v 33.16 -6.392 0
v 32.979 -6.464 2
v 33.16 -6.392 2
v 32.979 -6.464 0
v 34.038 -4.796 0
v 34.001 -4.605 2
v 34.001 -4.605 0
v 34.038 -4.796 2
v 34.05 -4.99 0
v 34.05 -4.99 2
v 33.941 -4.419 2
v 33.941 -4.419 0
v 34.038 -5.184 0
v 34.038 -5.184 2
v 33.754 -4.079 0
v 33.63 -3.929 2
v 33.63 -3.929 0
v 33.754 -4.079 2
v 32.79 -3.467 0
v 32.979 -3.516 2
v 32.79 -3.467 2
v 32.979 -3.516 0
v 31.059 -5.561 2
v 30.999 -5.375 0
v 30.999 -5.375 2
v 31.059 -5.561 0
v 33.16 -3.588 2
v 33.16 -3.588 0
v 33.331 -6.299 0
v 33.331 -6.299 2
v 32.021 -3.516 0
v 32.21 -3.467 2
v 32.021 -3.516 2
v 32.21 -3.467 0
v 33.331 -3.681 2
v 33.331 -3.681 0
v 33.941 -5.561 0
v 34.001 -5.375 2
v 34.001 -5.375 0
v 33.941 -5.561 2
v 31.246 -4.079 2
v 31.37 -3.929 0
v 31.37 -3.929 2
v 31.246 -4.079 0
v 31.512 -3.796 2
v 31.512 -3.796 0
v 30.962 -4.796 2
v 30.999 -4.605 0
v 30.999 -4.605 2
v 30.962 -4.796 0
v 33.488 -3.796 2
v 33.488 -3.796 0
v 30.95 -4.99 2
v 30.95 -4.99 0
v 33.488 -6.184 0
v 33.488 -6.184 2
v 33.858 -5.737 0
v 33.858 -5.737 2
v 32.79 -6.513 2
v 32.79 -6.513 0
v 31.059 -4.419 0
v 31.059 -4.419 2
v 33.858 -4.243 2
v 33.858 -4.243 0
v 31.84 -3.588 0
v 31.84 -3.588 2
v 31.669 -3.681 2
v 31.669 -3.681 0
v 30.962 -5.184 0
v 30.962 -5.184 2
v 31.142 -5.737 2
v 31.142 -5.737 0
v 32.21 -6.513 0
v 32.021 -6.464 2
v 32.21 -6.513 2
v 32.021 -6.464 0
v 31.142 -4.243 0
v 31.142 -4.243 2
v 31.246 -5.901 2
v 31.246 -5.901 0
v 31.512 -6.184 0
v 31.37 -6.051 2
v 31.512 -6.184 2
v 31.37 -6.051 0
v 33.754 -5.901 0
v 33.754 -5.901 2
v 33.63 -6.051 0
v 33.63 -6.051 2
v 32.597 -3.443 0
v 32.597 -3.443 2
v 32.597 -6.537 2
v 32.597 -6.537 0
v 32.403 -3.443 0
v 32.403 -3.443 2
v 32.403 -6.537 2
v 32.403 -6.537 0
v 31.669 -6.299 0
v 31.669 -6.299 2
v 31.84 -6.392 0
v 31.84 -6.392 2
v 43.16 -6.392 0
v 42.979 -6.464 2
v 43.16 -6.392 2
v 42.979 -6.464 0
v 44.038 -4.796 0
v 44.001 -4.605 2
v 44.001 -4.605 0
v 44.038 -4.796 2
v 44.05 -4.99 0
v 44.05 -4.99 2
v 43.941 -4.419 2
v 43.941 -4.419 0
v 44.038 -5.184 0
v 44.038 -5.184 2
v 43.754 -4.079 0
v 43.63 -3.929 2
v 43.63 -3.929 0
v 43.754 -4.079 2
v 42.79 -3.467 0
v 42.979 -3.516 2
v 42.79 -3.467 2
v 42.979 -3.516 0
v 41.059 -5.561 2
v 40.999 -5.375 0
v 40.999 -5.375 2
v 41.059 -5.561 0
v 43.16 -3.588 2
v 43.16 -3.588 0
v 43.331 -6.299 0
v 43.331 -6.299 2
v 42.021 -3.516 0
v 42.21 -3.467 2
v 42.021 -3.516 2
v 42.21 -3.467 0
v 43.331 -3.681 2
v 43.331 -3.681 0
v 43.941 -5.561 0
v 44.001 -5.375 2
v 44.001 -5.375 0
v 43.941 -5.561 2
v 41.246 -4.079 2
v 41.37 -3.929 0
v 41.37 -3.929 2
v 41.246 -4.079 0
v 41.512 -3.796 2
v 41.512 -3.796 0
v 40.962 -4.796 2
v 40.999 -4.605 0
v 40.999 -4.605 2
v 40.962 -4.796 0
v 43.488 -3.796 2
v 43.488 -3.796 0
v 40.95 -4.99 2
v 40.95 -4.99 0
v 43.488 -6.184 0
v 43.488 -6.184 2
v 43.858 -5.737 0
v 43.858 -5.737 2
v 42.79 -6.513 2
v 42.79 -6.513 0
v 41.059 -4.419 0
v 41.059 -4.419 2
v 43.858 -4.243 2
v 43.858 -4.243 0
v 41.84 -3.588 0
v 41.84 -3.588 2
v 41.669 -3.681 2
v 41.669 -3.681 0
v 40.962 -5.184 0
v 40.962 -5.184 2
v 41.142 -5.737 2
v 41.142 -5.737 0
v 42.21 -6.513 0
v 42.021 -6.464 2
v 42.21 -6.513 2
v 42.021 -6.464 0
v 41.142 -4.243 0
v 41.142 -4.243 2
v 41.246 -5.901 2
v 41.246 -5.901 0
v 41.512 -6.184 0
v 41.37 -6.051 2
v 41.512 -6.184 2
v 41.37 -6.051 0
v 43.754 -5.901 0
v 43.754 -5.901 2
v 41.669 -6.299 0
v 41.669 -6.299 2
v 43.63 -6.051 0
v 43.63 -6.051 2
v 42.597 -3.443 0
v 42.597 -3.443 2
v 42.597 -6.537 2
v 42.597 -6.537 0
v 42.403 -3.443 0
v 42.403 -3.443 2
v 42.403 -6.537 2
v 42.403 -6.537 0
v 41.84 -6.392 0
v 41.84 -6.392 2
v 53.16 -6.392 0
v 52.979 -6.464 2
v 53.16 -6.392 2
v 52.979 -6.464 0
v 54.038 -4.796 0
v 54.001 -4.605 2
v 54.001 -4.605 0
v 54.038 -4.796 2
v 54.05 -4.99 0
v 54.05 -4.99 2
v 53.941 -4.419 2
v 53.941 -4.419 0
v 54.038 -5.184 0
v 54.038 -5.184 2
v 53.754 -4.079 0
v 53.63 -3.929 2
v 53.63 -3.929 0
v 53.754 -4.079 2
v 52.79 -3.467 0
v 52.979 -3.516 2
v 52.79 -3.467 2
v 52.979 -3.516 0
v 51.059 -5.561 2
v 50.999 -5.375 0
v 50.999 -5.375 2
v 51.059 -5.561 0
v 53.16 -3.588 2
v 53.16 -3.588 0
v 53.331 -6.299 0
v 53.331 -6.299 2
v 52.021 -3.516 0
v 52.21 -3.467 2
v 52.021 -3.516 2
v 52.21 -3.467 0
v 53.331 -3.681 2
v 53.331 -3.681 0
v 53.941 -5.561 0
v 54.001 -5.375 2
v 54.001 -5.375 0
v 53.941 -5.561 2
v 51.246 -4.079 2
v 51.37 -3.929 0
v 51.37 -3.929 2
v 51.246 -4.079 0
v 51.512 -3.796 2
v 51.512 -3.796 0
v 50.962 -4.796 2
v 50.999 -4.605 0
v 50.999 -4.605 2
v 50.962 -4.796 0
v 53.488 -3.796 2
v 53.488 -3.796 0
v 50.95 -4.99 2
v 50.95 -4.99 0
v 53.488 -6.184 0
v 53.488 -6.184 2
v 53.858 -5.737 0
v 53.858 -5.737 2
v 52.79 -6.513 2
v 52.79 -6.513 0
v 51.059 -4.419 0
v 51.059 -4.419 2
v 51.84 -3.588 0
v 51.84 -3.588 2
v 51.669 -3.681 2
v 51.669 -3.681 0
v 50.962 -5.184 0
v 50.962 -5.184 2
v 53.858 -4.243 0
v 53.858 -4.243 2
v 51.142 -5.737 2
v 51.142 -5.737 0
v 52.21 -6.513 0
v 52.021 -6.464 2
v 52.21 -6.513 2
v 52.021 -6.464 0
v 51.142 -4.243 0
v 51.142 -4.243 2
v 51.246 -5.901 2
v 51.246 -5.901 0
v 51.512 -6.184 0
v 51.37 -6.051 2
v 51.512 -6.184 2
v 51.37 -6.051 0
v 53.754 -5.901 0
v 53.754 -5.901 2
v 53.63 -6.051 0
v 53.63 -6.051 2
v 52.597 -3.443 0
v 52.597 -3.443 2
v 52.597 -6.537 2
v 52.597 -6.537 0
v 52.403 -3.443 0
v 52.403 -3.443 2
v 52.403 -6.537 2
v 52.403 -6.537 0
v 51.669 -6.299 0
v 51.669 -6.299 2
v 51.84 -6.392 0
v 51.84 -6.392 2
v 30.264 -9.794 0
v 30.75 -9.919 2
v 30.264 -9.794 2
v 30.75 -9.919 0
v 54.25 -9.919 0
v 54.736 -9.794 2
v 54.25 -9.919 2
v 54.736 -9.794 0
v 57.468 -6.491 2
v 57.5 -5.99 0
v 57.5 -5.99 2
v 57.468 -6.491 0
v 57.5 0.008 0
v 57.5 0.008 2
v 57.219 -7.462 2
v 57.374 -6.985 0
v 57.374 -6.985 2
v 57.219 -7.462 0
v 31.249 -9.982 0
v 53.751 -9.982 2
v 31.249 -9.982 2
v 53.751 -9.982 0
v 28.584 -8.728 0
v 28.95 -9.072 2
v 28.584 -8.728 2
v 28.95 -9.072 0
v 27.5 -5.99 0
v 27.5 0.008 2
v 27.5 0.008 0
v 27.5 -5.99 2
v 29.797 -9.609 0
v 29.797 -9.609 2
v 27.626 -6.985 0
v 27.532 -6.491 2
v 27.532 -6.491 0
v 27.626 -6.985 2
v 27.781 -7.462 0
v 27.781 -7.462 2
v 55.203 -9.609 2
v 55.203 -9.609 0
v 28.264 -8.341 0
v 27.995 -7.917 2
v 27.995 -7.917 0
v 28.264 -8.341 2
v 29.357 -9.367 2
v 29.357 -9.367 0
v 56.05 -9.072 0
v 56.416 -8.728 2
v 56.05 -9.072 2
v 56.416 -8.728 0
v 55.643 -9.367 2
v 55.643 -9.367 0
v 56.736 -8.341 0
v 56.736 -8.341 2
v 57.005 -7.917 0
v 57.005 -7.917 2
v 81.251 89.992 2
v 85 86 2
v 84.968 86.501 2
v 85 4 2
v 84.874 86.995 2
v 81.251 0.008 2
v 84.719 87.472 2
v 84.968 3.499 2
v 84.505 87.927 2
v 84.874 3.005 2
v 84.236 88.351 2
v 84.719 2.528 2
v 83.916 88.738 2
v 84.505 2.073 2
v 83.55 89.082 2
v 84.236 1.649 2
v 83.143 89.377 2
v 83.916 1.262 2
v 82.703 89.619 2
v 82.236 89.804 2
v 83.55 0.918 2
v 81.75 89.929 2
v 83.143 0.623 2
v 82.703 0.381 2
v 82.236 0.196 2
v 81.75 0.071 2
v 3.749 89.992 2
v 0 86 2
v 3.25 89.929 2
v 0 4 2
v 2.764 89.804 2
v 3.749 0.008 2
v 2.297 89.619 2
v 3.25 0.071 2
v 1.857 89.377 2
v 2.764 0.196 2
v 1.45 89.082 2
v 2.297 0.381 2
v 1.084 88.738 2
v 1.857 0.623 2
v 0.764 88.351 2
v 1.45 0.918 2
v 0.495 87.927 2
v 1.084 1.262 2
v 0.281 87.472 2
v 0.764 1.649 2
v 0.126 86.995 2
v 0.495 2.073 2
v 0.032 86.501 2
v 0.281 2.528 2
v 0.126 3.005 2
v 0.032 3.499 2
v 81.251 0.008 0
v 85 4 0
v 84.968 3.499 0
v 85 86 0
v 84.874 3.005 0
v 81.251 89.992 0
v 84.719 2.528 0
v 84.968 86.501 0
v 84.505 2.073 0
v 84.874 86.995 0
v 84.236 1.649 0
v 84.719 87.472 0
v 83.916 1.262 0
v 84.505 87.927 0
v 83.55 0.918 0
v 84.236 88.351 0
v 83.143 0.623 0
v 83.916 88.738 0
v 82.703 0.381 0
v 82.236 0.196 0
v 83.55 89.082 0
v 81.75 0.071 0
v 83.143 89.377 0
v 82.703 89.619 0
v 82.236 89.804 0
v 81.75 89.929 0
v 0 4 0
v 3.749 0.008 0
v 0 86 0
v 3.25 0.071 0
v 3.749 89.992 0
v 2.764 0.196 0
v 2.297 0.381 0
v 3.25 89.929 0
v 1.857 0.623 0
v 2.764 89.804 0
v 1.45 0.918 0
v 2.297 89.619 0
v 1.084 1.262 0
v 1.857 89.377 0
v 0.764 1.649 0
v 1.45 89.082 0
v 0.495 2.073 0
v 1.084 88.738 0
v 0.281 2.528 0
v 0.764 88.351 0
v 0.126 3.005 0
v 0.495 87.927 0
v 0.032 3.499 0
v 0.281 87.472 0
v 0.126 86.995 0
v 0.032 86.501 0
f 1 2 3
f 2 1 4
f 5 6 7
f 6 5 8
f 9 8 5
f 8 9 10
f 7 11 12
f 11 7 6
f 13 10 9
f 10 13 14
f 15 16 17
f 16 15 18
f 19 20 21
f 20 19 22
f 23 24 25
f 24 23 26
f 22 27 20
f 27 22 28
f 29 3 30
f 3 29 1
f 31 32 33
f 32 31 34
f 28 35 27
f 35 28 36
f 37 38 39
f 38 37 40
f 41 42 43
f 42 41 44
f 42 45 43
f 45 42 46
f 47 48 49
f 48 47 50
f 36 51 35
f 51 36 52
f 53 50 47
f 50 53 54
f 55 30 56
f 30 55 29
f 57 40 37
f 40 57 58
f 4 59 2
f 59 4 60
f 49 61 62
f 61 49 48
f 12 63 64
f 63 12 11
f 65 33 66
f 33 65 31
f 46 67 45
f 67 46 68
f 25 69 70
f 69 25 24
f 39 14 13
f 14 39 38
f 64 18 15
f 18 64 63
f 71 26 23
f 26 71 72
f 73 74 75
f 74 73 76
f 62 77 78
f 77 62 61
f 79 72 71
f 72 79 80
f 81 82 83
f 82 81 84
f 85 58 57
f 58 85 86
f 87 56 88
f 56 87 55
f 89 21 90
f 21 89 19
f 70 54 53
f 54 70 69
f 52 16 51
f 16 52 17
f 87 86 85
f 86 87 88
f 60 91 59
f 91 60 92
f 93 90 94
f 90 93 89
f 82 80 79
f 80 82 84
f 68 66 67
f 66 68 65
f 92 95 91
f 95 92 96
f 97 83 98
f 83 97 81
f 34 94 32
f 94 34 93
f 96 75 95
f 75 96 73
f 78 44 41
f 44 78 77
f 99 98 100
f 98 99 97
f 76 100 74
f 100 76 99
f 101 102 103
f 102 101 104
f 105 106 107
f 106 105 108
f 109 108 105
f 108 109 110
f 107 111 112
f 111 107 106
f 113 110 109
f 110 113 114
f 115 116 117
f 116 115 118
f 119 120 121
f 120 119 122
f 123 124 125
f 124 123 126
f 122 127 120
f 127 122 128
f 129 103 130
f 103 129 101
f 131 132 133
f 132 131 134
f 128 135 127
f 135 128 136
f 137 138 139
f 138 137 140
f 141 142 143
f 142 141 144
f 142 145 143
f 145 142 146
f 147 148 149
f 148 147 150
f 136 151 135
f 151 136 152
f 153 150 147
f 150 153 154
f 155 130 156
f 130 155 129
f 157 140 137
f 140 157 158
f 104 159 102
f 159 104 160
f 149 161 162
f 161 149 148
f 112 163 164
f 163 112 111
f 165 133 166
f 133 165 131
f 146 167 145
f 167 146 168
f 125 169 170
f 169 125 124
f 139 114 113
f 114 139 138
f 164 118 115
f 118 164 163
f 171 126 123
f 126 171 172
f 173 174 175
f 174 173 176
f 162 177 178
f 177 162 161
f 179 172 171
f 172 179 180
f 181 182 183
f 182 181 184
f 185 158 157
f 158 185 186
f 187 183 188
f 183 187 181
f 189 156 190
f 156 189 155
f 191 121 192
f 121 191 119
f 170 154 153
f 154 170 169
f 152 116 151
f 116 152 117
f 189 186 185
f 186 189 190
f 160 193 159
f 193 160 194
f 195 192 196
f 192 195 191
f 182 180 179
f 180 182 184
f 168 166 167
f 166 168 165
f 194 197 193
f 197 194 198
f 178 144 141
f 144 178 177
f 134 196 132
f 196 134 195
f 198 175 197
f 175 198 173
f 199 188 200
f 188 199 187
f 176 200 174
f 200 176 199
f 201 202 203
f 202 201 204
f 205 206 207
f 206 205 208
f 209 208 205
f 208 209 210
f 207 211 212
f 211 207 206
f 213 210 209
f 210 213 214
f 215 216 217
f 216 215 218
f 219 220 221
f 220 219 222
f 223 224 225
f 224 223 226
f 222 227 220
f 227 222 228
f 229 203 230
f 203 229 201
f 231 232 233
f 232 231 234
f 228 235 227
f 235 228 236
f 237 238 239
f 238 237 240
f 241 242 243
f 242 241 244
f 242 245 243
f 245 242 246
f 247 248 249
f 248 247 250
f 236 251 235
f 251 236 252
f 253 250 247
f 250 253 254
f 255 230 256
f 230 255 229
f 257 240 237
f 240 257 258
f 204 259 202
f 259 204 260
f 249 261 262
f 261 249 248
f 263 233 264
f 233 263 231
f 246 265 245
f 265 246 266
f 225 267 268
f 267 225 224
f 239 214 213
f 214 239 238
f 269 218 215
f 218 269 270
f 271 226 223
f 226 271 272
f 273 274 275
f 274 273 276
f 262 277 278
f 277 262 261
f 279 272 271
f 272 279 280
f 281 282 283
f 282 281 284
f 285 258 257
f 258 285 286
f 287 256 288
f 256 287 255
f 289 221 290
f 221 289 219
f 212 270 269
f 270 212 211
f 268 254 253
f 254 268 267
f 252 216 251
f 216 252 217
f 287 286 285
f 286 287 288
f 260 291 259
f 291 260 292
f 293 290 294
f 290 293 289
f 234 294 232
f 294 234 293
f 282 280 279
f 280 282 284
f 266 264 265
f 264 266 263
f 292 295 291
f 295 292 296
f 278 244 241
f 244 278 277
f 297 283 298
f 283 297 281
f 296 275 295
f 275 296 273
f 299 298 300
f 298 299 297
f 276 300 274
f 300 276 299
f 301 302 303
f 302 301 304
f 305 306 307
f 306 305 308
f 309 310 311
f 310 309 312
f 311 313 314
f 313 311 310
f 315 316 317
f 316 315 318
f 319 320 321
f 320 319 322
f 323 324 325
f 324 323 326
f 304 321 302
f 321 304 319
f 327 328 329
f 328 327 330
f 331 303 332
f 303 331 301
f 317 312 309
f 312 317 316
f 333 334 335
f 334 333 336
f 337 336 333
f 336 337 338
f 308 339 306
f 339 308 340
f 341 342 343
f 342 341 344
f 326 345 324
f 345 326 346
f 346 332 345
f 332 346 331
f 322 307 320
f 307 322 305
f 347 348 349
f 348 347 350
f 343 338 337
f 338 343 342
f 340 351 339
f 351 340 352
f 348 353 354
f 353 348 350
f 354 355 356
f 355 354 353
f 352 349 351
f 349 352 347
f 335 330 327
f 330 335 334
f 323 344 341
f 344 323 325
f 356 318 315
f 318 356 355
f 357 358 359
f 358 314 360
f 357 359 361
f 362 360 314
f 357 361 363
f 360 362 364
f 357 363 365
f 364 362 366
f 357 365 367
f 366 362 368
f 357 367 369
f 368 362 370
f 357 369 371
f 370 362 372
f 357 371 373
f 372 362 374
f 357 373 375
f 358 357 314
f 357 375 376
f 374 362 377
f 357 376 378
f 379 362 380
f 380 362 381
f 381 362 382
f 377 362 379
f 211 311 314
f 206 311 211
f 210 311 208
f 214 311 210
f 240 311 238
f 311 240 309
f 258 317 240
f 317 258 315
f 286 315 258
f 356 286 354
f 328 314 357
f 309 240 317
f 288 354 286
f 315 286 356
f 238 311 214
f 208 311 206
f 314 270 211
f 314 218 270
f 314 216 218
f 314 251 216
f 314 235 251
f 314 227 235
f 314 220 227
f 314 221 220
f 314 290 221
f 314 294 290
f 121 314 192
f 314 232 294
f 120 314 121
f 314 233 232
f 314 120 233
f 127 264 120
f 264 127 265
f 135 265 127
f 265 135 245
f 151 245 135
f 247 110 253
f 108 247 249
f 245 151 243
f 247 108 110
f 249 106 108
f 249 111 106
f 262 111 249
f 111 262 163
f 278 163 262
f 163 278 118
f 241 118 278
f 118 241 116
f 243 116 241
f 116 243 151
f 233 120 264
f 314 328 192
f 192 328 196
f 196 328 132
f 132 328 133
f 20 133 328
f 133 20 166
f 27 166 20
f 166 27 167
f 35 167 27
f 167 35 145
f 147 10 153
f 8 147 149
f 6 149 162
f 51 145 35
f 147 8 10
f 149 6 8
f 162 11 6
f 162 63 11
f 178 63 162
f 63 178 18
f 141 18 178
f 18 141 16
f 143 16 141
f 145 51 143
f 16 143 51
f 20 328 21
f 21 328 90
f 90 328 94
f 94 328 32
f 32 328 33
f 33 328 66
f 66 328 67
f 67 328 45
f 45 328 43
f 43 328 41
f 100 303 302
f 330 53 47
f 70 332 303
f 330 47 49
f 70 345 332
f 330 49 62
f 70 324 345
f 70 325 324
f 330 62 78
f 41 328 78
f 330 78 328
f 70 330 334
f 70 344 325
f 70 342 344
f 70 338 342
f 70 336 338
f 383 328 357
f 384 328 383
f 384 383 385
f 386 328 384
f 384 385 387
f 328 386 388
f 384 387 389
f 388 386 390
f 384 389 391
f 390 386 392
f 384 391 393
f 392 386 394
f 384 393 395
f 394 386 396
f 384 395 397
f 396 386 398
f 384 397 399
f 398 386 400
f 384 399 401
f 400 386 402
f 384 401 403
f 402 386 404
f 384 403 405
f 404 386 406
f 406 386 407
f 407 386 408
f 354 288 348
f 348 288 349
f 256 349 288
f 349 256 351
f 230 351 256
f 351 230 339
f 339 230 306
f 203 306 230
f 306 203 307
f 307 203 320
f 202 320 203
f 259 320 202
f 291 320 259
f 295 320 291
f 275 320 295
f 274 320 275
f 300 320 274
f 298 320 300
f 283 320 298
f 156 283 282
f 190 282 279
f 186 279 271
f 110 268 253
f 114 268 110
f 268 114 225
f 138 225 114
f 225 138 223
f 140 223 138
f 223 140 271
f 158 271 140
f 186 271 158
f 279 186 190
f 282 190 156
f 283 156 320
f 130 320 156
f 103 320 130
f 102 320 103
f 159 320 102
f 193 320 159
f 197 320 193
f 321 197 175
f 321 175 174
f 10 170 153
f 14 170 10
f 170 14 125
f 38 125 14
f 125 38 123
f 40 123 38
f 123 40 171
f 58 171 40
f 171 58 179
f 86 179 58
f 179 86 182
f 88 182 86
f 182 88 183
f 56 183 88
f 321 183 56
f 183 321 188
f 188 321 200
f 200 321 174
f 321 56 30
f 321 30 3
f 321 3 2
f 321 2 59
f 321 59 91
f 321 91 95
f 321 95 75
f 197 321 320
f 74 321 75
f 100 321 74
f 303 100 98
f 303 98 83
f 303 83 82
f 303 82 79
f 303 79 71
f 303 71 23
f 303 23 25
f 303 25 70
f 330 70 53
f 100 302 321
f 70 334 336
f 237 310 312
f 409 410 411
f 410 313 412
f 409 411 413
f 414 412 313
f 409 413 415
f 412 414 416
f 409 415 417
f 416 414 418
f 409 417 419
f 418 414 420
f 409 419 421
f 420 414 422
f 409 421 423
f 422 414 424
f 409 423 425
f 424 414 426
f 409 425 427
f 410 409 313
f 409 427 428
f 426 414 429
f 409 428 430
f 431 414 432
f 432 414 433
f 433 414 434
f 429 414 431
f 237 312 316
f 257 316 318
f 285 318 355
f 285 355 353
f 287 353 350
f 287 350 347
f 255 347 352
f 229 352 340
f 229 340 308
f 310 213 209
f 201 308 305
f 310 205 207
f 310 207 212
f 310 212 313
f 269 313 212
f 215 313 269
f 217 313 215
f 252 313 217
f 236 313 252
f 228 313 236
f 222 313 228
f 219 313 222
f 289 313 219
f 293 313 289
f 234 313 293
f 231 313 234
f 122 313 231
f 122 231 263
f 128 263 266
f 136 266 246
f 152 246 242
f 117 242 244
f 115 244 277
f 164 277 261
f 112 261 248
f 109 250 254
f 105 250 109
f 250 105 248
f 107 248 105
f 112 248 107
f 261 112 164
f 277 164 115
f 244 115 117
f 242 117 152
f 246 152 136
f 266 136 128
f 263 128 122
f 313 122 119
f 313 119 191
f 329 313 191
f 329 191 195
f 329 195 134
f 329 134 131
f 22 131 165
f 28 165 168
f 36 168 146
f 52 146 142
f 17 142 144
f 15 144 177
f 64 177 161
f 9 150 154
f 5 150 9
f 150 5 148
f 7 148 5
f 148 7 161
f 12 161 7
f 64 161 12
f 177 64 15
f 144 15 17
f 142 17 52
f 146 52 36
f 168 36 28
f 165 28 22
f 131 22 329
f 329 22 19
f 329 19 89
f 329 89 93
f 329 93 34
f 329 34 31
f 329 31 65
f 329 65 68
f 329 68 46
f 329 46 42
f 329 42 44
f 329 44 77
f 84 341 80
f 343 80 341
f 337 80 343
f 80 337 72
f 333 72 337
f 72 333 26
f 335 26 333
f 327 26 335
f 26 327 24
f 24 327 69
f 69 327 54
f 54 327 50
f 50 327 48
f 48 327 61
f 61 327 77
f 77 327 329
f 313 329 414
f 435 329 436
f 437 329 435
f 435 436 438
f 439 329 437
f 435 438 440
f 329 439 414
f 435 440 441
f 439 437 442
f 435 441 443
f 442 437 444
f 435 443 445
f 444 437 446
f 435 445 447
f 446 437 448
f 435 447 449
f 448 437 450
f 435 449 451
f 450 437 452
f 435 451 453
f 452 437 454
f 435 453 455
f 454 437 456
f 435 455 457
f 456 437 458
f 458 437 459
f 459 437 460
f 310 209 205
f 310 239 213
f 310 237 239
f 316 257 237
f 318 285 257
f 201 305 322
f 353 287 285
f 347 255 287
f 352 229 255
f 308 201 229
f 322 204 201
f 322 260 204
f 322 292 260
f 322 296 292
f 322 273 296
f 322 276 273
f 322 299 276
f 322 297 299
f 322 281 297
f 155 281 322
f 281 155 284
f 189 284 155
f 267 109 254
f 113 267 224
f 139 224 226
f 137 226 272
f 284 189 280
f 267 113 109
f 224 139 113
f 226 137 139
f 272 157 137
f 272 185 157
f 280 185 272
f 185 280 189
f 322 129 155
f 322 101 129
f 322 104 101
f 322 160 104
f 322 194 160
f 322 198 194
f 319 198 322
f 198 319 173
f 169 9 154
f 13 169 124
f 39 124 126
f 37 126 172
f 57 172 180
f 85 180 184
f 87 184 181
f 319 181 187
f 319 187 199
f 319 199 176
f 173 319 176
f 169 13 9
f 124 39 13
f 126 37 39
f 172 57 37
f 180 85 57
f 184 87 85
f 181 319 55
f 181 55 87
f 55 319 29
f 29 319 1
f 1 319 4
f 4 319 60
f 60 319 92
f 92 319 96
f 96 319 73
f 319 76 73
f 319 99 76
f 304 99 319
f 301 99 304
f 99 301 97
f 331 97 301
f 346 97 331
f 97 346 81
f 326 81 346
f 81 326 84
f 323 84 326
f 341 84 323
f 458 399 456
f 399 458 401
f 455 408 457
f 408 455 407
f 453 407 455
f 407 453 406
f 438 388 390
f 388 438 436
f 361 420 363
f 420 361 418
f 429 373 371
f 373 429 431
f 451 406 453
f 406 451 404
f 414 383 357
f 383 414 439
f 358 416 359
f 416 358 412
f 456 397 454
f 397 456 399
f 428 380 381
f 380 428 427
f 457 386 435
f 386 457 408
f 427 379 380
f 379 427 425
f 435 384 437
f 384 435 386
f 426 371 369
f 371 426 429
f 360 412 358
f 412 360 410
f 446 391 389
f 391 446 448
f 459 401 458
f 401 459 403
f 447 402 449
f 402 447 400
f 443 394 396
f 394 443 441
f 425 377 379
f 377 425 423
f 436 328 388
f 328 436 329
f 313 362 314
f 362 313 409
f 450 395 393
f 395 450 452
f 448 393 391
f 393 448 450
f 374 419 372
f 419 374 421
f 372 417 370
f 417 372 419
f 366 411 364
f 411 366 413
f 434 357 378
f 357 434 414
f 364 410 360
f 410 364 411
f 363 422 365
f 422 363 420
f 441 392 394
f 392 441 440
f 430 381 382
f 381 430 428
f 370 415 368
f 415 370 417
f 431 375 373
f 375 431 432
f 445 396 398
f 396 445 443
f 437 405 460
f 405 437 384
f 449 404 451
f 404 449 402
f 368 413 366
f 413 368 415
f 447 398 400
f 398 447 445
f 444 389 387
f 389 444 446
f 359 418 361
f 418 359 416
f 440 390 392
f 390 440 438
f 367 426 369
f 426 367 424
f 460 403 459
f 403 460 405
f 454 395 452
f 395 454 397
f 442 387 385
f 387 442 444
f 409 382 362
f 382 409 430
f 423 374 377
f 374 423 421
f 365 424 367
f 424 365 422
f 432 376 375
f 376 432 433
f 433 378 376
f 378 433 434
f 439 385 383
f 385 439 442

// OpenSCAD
module rounded_box(
        width = 10,
        height = 10,
        tickness = 1,
        corner_radius = [1, 2, 3, 4]) {
    hull() {
        translate([corner_radius[0], corner_radius[0], 0]) {
            cylinder(r = corner_radius[0], h = tickness, $fn = 50);
        }
        translate([corner_radius[1], height - corner_radius[1], 0]) {
            cylinder(r = corner_radius[1], h = tickness, $fn = 50);
        }
        translate([width - corner_radius[2], height - corner_radius[2], 0]) {
            cylinder(r = corner_radius[2], h = tickness, $fn = 50);
        }
        translate([width - corner_radius[3], corner_radius[3], 0]) {
            cylinder(r = corner_radius[3], h = tickness, $fn = 50);
        }
    }
}

module power_and_control_bracket(
        tickness = 2,
        corner_radius = 4,
        main_plate_width = 85,
        main_plate_height = 90,
        connect_plate_width = 30,
        connect_plate_height = 10,
        connect_screw_diameter = 3.1) {
    union() {
        // Main plate
        rounded_box(main_plate_width, main_plate_height, tickness, [corner_radius, corner_radius, corner_radius, corner_radius]);
        // Connect plate
        translate([(main_plate_width - connect_plate_width) / 2, -connect_plate_height + 0.01, 0]) {
            difference() {
                rounded_box(connect_plate_width, connect_plate_height, tickness, [corner_radius, 0.001, 0.001, corner_radius]);
                for (i = [-1:1]) {
                    translate([i * 10 + connect_plate_width / 2, connect_plate_height / 2, -0.5]) {
                        cylinder(d = connect_screw_diameter, h = tickness + 1, $fn = 50);
                    }
                }
            }
        }
    }
}

power_and_control_bracket();
